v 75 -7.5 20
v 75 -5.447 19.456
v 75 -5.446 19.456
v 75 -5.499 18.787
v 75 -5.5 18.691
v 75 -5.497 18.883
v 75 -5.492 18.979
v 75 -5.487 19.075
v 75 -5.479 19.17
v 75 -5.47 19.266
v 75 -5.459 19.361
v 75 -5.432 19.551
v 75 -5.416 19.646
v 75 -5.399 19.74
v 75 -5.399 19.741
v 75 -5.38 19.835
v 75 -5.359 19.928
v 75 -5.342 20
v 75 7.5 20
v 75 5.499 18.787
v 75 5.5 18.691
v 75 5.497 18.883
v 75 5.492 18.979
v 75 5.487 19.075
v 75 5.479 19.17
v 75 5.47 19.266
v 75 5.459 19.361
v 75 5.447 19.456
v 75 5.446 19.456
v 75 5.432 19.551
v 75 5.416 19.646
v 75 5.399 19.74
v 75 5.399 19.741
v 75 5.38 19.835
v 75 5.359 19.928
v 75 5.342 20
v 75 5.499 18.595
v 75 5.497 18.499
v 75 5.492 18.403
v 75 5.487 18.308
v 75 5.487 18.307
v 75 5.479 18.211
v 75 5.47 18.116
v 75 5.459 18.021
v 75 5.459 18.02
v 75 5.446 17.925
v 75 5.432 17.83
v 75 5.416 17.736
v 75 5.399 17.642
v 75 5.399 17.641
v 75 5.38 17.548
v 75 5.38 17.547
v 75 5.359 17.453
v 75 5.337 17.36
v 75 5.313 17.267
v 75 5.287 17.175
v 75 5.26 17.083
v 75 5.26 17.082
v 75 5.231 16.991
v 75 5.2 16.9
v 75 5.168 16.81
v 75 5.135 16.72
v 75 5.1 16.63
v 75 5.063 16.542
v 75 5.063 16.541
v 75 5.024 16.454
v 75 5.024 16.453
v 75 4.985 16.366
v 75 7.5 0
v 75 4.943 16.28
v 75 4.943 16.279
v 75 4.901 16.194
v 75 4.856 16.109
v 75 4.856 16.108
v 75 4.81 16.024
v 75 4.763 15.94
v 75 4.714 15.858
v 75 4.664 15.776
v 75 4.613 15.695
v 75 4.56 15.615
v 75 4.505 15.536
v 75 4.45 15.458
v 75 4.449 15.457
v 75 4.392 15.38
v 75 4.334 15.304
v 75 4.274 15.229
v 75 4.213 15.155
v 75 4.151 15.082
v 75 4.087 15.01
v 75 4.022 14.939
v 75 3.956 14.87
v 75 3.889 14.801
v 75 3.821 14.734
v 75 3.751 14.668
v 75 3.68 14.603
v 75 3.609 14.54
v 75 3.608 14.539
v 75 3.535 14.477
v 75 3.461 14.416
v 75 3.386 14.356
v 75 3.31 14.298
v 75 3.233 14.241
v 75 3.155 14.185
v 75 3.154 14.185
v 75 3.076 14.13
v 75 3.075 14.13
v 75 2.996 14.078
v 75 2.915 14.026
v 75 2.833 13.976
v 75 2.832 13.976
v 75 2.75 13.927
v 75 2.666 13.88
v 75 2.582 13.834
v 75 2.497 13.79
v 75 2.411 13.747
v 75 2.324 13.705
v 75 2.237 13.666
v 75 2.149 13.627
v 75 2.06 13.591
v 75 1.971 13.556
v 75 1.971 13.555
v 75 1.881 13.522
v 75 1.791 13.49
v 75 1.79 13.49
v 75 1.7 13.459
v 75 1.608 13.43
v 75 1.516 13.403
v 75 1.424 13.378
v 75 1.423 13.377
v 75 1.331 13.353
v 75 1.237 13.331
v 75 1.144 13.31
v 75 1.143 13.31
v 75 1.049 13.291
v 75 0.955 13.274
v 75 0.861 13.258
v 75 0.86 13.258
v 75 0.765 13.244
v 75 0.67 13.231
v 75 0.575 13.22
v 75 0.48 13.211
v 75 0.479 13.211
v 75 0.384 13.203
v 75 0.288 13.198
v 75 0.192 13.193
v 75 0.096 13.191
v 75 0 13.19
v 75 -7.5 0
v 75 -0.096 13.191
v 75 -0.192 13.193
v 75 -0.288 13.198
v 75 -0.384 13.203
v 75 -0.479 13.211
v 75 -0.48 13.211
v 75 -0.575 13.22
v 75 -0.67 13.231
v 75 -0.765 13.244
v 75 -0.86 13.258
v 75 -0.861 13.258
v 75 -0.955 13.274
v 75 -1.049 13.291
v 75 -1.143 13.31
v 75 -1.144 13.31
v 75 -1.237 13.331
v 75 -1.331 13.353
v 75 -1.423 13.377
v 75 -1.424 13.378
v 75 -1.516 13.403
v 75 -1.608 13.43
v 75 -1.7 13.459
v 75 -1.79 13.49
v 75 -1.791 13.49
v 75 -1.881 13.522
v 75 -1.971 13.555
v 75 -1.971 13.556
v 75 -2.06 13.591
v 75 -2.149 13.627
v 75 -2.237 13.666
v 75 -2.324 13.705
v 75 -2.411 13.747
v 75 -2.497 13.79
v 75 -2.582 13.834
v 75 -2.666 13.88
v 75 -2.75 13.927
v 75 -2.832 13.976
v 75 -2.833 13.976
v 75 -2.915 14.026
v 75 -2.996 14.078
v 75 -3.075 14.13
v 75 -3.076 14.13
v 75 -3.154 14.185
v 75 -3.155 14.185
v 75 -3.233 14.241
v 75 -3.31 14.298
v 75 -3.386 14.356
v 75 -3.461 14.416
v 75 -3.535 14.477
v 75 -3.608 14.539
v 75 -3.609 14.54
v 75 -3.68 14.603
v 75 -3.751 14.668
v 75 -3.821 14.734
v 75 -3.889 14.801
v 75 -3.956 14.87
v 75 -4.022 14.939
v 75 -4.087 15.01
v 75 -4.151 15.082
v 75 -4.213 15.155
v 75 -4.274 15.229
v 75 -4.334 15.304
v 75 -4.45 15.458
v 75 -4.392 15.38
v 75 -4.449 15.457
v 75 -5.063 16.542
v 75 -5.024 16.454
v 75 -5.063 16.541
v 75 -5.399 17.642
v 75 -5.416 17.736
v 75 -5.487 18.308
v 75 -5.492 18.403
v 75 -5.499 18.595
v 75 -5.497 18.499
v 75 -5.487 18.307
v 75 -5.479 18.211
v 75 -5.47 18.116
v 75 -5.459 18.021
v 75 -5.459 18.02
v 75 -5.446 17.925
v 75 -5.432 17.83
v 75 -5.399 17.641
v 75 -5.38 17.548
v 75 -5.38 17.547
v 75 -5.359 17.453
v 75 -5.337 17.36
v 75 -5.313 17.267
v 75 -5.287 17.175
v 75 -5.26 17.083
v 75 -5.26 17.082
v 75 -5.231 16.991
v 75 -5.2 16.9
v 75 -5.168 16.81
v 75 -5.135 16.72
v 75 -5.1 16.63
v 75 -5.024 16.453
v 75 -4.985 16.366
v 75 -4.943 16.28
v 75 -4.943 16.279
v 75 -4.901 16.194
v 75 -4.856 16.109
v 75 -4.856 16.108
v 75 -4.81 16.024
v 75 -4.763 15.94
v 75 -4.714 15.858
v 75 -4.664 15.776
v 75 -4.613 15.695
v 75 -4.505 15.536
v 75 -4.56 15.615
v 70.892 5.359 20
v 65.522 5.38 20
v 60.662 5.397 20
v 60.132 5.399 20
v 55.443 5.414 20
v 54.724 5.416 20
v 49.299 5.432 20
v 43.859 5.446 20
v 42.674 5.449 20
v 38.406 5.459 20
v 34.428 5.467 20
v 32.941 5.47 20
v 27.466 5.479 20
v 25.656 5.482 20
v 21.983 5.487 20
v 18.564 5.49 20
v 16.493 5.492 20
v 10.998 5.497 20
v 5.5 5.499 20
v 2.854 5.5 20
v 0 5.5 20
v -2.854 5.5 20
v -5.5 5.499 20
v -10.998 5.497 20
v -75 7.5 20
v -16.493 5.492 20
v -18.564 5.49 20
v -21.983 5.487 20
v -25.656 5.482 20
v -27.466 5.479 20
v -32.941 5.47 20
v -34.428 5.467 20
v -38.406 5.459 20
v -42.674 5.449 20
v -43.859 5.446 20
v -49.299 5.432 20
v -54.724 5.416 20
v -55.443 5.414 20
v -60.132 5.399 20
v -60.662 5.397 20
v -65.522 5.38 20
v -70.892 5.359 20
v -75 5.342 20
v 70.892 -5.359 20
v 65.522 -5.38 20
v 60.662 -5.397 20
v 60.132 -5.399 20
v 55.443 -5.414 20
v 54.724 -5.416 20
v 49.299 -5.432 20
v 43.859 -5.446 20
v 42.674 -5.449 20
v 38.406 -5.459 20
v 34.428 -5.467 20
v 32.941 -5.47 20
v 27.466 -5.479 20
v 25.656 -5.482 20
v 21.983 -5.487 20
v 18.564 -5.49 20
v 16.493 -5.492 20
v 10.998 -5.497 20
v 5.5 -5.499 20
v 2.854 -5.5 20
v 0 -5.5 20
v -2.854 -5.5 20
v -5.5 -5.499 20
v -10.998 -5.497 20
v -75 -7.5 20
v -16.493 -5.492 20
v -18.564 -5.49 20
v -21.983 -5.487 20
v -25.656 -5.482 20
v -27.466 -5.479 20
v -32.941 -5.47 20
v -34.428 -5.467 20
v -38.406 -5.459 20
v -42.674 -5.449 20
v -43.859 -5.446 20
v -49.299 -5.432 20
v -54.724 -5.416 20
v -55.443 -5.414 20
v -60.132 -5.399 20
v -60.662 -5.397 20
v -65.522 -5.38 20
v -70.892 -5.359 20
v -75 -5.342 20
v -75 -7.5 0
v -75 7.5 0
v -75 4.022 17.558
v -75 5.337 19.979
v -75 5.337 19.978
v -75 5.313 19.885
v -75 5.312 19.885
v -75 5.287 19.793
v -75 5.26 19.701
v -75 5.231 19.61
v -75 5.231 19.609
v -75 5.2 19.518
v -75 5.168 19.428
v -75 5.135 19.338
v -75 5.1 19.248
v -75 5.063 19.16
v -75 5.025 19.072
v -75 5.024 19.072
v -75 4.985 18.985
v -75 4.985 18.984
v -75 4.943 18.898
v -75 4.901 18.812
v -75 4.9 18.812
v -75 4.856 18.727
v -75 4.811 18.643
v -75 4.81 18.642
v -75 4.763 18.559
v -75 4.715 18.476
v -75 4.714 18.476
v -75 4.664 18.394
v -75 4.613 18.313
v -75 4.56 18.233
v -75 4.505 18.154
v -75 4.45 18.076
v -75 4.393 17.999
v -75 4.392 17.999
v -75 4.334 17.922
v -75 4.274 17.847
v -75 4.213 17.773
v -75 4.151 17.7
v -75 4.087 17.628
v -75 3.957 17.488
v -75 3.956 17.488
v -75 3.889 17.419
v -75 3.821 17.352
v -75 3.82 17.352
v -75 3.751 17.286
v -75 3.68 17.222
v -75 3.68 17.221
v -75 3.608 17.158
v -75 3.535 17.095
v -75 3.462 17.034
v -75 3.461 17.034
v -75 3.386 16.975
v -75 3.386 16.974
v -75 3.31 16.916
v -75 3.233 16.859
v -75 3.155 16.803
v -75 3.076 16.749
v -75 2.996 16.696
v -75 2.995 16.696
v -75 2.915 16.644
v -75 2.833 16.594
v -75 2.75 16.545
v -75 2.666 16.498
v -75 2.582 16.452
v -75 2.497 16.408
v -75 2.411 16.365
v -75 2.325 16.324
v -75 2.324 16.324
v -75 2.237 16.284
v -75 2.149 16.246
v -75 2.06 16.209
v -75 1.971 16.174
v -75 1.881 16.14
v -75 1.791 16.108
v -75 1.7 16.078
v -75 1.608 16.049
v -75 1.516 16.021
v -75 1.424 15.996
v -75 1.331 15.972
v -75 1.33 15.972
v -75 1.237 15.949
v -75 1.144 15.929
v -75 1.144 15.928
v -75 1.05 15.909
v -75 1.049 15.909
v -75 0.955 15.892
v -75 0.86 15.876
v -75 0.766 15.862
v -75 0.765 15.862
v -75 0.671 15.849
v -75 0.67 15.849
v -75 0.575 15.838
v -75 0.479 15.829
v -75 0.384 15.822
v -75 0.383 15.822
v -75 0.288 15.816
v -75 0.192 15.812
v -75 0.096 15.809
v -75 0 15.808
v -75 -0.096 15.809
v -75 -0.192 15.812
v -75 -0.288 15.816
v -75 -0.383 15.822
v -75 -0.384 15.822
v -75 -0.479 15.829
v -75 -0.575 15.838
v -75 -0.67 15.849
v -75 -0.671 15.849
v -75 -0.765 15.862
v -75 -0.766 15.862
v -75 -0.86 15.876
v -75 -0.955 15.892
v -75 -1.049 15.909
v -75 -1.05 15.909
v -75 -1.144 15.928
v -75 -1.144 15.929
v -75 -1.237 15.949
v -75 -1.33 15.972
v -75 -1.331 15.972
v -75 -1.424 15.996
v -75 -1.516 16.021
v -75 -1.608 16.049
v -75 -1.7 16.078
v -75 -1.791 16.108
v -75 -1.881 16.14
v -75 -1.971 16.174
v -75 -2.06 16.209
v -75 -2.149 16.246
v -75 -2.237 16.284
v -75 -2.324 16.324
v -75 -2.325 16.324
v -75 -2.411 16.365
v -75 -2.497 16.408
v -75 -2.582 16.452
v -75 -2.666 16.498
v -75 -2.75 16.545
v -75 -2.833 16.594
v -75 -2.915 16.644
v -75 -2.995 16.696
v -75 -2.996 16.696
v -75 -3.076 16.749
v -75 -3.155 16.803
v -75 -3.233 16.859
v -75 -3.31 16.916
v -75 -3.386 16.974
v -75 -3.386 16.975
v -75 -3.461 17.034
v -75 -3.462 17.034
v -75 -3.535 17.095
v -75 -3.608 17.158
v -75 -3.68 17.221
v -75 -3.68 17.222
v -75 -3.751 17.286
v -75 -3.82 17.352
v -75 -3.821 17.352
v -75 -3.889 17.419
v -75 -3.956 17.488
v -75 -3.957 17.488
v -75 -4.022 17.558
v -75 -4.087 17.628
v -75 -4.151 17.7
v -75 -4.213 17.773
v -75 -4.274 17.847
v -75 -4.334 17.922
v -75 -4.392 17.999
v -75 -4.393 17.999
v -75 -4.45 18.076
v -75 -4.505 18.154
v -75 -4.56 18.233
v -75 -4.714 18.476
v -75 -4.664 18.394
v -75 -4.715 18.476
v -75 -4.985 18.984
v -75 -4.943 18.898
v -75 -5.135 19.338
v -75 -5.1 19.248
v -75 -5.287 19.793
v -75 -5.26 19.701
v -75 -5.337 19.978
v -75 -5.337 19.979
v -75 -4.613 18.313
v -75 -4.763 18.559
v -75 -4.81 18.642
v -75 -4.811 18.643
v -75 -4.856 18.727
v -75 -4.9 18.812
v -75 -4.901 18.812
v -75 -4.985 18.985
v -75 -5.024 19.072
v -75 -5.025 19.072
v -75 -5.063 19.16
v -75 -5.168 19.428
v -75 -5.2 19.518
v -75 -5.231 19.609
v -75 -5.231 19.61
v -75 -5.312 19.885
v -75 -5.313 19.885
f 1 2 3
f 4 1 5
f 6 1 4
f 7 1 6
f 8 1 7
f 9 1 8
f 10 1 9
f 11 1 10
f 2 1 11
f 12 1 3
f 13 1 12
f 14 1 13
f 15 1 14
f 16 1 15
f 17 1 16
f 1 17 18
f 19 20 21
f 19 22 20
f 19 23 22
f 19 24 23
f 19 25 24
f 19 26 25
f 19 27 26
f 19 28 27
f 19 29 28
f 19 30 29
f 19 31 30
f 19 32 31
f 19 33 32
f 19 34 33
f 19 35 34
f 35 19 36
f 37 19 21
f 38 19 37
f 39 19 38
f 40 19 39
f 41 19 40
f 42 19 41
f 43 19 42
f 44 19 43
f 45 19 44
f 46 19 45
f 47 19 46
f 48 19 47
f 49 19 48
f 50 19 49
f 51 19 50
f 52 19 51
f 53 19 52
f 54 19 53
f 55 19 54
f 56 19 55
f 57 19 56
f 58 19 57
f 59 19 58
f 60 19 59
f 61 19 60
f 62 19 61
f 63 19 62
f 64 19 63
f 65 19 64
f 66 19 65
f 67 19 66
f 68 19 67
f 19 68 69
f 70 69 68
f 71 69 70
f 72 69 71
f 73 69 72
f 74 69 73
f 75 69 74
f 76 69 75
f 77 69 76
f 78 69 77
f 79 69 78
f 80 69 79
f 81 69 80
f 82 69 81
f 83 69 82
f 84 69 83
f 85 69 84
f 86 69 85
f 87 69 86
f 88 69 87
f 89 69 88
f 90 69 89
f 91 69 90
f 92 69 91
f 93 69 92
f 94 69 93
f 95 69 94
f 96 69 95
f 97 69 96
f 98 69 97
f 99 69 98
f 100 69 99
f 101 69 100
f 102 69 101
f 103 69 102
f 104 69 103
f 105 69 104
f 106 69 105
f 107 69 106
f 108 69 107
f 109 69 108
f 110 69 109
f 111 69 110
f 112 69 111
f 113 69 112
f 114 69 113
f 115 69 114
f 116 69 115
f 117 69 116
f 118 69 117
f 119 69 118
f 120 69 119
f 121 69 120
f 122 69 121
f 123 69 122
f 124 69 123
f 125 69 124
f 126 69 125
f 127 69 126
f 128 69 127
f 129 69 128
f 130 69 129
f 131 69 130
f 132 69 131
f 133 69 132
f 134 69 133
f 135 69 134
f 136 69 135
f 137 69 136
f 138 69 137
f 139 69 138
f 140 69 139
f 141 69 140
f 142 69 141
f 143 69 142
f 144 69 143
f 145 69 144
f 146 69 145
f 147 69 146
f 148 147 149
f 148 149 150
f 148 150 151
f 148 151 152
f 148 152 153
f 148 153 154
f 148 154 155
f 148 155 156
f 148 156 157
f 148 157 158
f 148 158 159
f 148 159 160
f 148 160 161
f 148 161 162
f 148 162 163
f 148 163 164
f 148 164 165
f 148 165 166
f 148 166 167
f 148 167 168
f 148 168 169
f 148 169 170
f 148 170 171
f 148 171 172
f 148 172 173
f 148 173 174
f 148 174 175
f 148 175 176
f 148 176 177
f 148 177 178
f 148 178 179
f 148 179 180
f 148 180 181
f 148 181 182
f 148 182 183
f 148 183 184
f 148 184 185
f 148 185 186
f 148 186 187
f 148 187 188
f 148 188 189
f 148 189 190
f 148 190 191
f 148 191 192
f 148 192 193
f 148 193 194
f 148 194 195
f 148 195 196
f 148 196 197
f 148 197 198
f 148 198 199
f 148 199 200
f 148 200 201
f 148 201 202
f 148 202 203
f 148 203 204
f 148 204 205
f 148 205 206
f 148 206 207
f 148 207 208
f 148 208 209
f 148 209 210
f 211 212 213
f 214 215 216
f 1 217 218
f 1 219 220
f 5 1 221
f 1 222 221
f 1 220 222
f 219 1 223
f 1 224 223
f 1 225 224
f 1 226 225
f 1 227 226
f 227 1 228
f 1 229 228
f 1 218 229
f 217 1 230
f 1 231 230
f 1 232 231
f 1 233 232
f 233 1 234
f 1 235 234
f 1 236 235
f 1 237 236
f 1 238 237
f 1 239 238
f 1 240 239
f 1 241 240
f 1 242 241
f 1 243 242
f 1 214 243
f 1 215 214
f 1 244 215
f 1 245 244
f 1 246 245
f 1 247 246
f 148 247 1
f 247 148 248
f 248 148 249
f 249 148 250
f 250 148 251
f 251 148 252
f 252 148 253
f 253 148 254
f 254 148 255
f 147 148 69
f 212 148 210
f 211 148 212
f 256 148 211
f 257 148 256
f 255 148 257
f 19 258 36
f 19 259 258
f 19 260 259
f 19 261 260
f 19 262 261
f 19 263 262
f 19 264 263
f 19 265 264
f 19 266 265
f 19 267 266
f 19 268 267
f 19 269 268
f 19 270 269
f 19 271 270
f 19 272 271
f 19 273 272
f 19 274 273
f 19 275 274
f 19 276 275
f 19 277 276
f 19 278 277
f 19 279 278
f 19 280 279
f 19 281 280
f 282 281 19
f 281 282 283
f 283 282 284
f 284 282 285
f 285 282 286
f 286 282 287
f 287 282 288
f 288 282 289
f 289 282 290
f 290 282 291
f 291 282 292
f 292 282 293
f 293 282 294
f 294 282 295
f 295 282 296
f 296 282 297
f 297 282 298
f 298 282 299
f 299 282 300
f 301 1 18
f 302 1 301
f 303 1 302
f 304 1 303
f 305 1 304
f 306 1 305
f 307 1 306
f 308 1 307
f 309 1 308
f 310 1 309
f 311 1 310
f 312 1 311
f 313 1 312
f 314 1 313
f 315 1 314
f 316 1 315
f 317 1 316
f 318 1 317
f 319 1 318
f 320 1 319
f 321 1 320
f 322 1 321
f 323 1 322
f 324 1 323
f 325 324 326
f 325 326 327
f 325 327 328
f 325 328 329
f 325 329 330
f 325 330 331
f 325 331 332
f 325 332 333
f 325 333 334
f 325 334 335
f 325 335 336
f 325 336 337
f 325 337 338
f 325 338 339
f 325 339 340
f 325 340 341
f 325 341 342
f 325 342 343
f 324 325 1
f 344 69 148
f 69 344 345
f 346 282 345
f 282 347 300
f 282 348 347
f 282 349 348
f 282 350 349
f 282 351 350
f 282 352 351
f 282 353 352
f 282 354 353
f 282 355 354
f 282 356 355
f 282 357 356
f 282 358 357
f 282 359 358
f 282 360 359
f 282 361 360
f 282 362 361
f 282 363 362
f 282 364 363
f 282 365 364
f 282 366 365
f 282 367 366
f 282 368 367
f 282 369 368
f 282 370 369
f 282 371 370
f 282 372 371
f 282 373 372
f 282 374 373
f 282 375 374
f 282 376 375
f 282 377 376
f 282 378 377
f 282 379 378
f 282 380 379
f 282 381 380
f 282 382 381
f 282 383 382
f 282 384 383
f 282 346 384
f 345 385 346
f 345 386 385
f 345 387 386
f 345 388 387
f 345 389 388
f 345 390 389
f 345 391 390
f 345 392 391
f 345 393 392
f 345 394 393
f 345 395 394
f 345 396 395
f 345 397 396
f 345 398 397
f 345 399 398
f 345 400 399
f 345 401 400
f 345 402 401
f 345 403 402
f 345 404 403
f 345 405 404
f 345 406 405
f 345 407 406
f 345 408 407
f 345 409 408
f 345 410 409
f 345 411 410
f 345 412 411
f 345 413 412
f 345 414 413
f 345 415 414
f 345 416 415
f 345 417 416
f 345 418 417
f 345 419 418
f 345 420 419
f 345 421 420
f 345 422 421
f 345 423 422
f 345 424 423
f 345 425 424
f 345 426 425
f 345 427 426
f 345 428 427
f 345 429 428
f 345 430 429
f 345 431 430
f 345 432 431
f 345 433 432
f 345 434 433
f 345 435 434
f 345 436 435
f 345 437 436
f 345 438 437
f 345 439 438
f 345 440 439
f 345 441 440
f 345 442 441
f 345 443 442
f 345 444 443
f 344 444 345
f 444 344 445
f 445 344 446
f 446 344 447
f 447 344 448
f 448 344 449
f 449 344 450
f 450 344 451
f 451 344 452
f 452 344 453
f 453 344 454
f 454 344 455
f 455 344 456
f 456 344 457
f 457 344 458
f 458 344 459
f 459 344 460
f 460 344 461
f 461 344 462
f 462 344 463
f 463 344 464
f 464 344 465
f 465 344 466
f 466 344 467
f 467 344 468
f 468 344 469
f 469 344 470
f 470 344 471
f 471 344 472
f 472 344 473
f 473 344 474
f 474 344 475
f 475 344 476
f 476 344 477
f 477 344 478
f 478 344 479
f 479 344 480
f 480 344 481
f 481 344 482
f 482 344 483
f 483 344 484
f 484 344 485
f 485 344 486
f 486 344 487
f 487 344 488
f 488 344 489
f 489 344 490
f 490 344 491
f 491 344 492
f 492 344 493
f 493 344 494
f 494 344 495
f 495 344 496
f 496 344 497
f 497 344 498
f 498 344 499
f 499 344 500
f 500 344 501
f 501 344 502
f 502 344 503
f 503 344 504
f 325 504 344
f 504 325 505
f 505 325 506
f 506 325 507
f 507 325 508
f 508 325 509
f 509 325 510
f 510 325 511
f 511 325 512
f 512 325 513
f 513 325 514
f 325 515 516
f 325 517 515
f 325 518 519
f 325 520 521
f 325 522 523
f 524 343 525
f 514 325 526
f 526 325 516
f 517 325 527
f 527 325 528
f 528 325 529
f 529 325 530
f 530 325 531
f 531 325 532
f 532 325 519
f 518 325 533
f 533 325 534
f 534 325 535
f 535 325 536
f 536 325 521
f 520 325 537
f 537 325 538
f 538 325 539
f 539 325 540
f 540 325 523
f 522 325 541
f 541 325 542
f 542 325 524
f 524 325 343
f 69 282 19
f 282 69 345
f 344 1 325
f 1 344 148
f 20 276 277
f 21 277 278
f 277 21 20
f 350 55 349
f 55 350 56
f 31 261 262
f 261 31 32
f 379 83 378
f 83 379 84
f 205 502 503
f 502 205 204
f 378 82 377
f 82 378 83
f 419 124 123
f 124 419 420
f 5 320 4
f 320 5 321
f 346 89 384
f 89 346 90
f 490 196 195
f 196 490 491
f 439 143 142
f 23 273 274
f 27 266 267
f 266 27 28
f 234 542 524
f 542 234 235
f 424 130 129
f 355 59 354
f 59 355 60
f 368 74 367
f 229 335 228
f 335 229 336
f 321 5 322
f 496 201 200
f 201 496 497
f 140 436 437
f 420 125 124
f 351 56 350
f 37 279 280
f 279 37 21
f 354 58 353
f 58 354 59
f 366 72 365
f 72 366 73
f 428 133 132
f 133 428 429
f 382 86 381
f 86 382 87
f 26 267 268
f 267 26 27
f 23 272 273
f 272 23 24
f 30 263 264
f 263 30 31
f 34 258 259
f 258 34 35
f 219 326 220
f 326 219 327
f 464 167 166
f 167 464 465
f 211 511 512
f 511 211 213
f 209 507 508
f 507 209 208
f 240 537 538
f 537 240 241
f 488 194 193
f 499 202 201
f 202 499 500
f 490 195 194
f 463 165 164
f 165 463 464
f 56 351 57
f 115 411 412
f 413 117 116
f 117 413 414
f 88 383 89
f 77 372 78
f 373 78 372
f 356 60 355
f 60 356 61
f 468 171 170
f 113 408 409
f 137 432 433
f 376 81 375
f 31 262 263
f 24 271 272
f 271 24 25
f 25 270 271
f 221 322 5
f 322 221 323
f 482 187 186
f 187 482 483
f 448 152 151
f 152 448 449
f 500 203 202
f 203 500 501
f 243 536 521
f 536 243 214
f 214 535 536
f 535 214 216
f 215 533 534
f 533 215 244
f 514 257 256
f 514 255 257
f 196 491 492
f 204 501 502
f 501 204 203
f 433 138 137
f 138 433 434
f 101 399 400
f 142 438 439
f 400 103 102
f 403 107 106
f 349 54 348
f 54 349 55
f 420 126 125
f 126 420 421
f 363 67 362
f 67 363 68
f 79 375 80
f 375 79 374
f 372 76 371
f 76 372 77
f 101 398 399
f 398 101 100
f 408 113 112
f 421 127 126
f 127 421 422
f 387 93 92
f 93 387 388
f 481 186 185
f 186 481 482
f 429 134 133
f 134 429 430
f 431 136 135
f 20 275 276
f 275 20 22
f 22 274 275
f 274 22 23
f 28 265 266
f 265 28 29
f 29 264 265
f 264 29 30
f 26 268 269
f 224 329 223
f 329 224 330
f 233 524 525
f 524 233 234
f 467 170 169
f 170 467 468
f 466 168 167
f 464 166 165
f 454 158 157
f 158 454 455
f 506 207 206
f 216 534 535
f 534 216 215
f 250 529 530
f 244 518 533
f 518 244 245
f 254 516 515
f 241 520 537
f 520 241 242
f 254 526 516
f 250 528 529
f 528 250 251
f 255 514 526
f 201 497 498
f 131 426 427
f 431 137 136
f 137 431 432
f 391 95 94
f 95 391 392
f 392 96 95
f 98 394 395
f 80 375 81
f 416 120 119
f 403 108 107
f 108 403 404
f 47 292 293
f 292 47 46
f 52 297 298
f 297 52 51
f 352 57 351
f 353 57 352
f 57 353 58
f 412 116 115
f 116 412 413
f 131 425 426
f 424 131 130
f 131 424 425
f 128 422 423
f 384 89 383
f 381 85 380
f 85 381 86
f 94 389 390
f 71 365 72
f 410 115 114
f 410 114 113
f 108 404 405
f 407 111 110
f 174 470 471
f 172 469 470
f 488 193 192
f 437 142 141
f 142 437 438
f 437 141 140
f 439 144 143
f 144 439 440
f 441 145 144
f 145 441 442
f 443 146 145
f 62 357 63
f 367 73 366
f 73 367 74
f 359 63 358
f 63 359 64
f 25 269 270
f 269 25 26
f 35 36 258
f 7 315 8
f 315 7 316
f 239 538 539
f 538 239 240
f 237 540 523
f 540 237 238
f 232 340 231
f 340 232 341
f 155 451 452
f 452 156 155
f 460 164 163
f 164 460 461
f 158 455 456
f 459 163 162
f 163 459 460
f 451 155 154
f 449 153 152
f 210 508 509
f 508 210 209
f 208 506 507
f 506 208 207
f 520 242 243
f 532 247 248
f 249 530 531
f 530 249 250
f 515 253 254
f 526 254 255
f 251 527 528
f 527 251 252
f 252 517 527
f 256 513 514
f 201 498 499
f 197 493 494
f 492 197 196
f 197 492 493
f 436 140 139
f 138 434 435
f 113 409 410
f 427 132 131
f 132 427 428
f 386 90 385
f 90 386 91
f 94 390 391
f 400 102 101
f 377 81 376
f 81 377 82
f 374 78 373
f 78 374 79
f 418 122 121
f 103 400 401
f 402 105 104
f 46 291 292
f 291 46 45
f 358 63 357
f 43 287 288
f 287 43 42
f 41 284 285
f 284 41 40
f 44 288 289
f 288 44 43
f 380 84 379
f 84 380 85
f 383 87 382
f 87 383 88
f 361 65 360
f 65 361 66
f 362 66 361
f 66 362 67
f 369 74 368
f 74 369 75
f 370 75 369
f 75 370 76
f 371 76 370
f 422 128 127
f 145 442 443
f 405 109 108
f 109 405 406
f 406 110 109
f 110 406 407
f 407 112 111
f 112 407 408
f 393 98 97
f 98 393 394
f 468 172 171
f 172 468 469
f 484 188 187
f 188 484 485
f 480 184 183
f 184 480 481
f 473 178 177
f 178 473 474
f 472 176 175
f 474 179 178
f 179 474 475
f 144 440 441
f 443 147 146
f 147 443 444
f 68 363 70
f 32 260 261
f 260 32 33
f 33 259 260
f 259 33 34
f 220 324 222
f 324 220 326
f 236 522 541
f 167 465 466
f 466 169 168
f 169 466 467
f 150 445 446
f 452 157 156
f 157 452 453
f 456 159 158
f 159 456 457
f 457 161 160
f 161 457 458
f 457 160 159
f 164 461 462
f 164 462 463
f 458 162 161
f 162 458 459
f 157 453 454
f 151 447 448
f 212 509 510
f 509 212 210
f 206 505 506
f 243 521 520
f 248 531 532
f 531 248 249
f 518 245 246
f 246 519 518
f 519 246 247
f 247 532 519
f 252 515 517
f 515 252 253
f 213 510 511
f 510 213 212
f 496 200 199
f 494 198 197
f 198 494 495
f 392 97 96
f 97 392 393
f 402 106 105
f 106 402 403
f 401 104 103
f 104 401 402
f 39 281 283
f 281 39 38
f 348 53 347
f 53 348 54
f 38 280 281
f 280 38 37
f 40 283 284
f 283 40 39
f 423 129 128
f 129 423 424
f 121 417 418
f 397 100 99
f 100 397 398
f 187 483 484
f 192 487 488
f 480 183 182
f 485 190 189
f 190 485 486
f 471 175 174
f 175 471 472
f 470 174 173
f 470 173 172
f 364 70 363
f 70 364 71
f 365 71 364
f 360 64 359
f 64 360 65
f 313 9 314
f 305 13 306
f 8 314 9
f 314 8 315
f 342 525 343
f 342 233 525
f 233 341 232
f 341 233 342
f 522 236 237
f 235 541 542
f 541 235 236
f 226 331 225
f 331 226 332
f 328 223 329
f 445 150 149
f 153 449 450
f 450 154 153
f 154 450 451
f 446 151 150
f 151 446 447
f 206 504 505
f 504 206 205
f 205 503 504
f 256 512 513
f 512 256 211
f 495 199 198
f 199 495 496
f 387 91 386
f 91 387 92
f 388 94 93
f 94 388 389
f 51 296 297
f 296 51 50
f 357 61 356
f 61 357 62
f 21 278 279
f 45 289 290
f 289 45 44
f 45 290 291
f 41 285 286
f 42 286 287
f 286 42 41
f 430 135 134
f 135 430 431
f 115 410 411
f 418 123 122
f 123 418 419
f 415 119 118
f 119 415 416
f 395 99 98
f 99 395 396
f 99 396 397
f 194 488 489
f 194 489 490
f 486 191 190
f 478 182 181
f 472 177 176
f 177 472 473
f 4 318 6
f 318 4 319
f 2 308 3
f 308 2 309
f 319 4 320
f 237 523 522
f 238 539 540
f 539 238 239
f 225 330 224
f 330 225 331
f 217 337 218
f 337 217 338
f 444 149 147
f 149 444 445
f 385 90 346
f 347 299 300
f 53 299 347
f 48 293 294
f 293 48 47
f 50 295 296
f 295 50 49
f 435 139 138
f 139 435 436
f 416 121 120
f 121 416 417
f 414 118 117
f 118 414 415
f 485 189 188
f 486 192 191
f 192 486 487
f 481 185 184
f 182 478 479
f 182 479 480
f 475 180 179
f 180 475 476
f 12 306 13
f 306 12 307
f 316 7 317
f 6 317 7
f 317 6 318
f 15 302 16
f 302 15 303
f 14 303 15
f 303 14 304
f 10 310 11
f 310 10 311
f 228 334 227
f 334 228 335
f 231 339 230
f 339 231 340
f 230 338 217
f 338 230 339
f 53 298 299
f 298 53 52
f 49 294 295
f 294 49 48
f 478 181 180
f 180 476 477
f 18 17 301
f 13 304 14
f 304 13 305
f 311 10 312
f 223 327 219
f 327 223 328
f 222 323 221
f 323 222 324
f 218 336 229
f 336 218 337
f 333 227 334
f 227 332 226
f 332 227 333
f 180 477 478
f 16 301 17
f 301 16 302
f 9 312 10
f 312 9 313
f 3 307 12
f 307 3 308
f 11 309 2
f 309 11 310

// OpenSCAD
length=150;
track_width=15;
track_height=20;

coil_outer_radius=15.5;
coil_inner_radius=15.5 - 7;
coil_length=18;

cutout_width=11;

sensor_length = 17.8 + 0.2;
sensor_width = 5 + 0.1;

translate([0,0,track_height/2])
difference() {
    $fn=360;
    cube([length,track_width,track_height],center=true);

    // track 1deg slope
    translate([0,0,track_height/2]) {
        rotate([91,0,90])
            cylinder(h=length+1,r=cutout_width/2,center=true);
    }    
}
